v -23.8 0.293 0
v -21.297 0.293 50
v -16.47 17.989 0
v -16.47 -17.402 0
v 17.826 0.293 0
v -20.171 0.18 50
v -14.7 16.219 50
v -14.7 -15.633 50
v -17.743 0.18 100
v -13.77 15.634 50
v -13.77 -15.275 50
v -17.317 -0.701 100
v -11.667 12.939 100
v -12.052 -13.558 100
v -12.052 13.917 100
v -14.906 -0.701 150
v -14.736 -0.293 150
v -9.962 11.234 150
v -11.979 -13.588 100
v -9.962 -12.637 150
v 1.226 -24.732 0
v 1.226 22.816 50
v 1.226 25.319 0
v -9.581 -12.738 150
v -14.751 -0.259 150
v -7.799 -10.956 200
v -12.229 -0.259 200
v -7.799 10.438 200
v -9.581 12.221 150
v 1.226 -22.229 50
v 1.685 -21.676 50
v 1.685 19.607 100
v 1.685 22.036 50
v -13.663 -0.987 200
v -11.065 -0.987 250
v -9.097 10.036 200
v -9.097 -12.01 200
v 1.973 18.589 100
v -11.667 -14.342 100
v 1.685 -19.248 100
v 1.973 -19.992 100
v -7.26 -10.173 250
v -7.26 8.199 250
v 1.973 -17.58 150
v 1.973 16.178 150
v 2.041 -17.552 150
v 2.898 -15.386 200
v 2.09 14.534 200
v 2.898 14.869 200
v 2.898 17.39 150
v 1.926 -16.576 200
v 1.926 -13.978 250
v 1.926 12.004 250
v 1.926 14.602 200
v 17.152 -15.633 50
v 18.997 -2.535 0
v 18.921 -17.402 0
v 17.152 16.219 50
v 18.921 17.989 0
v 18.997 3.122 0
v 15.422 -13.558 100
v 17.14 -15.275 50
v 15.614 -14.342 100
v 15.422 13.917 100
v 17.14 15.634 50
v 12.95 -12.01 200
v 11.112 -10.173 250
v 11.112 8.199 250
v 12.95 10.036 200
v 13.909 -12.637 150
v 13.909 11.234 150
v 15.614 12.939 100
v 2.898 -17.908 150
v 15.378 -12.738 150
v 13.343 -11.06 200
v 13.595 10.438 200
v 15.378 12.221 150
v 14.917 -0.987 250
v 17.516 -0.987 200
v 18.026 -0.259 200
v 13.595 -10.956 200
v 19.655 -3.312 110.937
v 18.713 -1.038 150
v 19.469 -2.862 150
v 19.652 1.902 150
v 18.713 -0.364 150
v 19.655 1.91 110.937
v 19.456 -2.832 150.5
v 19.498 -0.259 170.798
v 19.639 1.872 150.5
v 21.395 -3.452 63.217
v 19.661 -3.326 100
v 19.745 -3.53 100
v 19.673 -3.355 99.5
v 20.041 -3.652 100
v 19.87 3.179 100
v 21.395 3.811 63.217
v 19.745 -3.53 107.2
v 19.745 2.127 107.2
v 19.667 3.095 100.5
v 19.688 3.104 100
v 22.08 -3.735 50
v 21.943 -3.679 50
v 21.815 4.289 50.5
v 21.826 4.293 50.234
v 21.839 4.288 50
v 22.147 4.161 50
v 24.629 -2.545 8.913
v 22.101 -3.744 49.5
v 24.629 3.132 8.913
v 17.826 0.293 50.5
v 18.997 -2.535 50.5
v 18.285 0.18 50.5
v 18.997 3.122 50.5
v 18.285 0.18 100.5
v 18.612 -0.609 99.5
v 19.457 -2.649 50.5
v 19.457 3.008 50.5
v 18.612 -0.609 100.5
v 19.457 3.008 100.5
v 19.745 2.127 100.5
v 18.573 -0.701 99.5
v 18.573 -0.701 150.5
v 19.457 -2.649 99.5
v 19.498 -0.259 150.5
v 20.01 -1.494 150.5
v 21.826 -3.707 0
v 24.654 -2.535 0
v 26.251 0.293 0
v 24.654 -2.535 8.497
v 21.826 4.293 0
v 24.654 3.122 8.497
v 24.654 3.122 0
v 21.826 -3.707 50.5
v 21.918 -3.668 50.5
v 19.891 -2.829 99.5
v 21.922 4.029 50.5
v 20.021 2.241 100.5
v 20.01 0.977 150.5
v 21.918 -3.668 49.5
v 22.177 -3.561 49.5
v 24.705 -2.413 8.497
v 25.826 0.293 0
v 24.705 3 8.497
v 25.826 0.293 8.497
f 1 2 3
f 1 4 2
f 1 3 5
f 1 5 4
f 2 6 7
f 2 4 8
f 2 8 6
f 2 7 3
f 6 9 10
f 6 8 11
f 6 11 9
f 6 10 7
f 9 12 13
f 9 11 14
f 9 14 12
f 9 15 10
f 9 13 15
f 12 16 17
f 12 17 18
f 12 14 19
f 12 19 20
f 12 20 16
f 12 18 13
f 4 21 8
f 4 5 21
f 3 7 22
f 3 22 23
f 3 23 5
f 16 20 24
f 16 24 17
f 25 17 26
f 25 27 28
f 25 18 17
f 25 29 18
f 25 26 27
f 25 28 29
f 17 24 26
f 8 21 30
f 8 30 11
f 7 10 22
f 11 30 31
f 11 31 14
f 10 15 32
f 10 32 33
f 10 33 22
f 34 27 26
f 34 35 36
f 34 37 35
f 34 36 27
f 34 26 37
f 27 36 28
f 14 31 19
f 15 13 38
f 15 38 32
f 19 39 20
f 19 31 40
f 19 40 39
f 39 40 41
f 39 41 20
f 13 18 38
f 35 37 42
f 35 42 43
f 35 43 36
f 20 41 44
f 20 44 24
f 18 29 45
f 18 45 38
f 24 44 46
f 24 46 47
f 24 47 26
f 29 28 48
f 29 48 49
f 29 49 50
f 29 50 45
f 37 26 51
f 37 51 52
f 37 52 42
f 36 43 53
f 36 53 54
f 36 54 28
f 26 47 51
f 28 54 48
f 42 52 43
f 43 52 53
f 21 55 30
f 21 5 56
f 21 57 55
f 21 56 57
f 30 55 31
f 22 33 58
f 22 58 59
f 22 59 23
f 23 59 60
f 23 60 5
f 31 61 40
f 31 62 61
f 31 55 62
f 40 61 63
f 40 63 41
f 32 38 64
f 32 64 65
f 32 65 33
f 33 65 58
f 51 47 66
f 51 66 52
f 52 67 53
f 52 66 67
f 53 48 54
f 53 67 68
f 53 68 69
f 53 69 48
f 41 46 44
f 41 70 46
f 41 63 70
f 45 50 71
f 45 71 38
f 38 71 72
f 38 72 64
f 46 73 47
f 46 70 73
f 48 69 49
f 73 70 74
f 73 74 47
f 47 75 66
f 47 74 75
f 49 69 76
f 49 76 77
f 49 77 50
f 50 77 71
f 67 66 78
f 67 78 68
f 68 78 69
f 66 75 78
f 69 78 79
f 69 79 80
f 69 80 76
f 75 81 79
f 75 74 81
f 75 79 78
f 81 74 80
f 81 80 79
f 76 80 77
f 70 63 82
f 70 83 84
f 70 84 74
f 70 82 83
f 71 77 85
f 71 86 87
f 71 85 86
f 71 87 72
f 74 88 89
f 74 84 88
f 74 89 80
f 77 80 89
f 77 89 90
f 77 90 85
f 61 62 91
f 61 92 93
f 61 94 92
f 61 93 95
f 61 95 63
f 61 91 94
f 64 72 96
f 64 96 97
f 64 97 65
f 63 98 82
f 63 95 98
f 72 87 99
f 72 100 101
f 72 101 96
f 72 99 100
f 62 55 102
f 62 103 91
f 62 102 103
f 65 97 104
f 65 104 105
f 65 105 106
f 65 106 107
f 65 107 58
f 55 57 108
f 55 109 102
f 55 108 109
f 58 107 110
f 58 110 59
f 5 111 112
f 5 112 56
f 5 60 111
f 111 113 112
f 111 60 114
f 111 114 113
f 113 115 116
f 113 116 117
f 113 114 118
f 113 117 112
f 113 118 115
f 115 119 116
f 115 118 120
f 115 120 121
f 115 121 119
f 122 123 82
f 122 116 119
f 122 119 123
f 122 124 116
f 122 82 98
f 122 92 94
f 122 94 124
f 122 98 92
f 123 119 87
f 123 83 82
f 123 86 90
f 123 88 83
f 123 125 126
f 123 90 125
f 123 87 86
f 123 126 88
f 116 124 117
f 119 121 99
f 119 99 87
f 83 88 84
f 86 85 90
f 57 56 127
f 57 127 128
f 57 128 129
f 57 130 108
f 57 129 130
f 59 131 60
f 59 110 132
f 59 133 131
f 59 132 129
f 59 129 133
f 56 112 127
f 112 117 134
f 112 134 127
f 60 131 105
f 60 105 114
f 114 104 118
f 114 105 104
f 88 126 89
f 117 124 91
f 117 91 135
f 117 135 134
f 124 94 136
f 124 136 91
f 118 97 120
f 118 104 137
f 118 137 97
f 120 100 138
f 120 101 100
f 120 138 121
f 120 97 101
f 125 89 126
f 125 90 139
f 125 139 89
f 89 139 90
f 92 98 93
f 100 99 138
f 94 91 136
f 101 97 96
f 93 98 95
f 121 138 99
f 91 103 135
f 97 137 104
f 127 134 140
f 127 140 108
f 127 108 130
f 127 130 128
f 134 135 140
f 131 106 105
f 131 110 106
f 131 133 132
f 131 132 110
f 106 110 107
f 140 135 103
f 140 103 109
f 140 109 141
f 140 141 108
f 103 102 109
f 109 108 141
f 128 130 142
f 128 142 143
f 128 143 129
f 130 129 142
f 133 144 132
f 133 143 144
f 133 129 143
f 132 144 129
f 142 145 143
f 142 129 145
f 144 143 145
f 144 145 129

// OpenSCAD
// Low Poly Tree for 3D Printing - Phase 1: Trunk
// 30cm tall oak-like tree trunk with hollow core for RGB LED strip

// ===== PARAMETERS =====
tree_height = 250; // 30cm in mm
trunk_base_diameter = 50;
trunk_top_diameter = 25;
led_channel_diameter = 8; // for LED strip
wall_thickness = 0.4; // minimum wall thickness for LED channel

// Randomization seed (change for different trunk variations)
random_seed = 42;

// Quality settings
$fn = 8; // Low poly look (8 sides for cylinders)

// ===== RANDOMIZATION HELPERS =====
function rand(index, seed) = 
    (sin(index * 12.9898 + seed * 78.233) * 43758.5453) - floor(sin(index * 12.9898 + seed * 78.233) * 43758.5453);

// Sum function for accumulating values
function sum(v, i = 0, r = 0) = i < len(v) ? sum(v, i + 1, r + v[i]) : r;

// Get number of segments (3-7)
function get_segment_count(seed) = 
    floor(3 + rand(0, seed) * 5); // 3 to 7 segments

// ===== MODULES =====

// Create an irregular oak-like trunk section
module trunk_section(height, bottom_d, top_d, x_offset=0, y_offset=0) {
    translate([x_offset, y_offset, 0])
        cylinder(h=height, d1=bottom_d, d2=top_d);
}

// Create the main trunk with LED channel
module trunk() {
    num_segments = get_segment_count(random_seed);
    segment_height = tree_height / num_segments;
    
    difference() {
        union() {
            // Create segments procedurally with accumulated positions
            for (i = [0:num_segments-1]) {
                z_pos = i * segment_height;
                progress = i / num_segments; // 0 to 1
                
                // Calculate diameter at this segment
                segment_bottom_d = trunk_base_diameter * (1 - progress * 0.5);
                segment_top_d = trunk_base_diameter * (1 - (progress + 1/num_segments) * 0.5);
                
                // Calculate accumulated position - sum all previous offsets
                x_accum = sum([for (j = [0:i]) rand(j * 2 + 100, random_seed) * 3 - 1.5]);
                y_accum = sum([for (j = [0:i]) rand(j * 3 + 200, random_seed) * 3 - 1.5]);
                
                // Random diameter variation
                d_variation = 0.95 + rand(i * 5, random_seed) * 0.1; // 0.95 to 1.05
                
                translate([0, 0, z_pos])
                    trunk_section(segment_height, 
                                segment_bottom_d * d_variation, 
                                segment_top_d * d_variation, 
                                x_accum, y_accum);
            }
        }
        
        // Inner channel for LED strip - follows trunk curve
        for (i = [0:num_segments-1]) {
            z_pos = i * segment_height;
            x_accum = sum([for (j = [0:i]) rand(j * 2 + 100, random_seed) * 3 - 1.5]);
            y_accum = sum([for (j = [0:i]) rand(j * 3 + 200, random_seed) * 3 - 1.5]);
            
            translate([trunk_base_diameter/2 - led_channel_diameter/2 - wall_thickness + x_accum, y_accum, z_pos - 0.5])
                cylinder(h=segment_height + 1, d=led_channel_diameter);
        }
    }
}

// ===== RENDER =====
trunk();
